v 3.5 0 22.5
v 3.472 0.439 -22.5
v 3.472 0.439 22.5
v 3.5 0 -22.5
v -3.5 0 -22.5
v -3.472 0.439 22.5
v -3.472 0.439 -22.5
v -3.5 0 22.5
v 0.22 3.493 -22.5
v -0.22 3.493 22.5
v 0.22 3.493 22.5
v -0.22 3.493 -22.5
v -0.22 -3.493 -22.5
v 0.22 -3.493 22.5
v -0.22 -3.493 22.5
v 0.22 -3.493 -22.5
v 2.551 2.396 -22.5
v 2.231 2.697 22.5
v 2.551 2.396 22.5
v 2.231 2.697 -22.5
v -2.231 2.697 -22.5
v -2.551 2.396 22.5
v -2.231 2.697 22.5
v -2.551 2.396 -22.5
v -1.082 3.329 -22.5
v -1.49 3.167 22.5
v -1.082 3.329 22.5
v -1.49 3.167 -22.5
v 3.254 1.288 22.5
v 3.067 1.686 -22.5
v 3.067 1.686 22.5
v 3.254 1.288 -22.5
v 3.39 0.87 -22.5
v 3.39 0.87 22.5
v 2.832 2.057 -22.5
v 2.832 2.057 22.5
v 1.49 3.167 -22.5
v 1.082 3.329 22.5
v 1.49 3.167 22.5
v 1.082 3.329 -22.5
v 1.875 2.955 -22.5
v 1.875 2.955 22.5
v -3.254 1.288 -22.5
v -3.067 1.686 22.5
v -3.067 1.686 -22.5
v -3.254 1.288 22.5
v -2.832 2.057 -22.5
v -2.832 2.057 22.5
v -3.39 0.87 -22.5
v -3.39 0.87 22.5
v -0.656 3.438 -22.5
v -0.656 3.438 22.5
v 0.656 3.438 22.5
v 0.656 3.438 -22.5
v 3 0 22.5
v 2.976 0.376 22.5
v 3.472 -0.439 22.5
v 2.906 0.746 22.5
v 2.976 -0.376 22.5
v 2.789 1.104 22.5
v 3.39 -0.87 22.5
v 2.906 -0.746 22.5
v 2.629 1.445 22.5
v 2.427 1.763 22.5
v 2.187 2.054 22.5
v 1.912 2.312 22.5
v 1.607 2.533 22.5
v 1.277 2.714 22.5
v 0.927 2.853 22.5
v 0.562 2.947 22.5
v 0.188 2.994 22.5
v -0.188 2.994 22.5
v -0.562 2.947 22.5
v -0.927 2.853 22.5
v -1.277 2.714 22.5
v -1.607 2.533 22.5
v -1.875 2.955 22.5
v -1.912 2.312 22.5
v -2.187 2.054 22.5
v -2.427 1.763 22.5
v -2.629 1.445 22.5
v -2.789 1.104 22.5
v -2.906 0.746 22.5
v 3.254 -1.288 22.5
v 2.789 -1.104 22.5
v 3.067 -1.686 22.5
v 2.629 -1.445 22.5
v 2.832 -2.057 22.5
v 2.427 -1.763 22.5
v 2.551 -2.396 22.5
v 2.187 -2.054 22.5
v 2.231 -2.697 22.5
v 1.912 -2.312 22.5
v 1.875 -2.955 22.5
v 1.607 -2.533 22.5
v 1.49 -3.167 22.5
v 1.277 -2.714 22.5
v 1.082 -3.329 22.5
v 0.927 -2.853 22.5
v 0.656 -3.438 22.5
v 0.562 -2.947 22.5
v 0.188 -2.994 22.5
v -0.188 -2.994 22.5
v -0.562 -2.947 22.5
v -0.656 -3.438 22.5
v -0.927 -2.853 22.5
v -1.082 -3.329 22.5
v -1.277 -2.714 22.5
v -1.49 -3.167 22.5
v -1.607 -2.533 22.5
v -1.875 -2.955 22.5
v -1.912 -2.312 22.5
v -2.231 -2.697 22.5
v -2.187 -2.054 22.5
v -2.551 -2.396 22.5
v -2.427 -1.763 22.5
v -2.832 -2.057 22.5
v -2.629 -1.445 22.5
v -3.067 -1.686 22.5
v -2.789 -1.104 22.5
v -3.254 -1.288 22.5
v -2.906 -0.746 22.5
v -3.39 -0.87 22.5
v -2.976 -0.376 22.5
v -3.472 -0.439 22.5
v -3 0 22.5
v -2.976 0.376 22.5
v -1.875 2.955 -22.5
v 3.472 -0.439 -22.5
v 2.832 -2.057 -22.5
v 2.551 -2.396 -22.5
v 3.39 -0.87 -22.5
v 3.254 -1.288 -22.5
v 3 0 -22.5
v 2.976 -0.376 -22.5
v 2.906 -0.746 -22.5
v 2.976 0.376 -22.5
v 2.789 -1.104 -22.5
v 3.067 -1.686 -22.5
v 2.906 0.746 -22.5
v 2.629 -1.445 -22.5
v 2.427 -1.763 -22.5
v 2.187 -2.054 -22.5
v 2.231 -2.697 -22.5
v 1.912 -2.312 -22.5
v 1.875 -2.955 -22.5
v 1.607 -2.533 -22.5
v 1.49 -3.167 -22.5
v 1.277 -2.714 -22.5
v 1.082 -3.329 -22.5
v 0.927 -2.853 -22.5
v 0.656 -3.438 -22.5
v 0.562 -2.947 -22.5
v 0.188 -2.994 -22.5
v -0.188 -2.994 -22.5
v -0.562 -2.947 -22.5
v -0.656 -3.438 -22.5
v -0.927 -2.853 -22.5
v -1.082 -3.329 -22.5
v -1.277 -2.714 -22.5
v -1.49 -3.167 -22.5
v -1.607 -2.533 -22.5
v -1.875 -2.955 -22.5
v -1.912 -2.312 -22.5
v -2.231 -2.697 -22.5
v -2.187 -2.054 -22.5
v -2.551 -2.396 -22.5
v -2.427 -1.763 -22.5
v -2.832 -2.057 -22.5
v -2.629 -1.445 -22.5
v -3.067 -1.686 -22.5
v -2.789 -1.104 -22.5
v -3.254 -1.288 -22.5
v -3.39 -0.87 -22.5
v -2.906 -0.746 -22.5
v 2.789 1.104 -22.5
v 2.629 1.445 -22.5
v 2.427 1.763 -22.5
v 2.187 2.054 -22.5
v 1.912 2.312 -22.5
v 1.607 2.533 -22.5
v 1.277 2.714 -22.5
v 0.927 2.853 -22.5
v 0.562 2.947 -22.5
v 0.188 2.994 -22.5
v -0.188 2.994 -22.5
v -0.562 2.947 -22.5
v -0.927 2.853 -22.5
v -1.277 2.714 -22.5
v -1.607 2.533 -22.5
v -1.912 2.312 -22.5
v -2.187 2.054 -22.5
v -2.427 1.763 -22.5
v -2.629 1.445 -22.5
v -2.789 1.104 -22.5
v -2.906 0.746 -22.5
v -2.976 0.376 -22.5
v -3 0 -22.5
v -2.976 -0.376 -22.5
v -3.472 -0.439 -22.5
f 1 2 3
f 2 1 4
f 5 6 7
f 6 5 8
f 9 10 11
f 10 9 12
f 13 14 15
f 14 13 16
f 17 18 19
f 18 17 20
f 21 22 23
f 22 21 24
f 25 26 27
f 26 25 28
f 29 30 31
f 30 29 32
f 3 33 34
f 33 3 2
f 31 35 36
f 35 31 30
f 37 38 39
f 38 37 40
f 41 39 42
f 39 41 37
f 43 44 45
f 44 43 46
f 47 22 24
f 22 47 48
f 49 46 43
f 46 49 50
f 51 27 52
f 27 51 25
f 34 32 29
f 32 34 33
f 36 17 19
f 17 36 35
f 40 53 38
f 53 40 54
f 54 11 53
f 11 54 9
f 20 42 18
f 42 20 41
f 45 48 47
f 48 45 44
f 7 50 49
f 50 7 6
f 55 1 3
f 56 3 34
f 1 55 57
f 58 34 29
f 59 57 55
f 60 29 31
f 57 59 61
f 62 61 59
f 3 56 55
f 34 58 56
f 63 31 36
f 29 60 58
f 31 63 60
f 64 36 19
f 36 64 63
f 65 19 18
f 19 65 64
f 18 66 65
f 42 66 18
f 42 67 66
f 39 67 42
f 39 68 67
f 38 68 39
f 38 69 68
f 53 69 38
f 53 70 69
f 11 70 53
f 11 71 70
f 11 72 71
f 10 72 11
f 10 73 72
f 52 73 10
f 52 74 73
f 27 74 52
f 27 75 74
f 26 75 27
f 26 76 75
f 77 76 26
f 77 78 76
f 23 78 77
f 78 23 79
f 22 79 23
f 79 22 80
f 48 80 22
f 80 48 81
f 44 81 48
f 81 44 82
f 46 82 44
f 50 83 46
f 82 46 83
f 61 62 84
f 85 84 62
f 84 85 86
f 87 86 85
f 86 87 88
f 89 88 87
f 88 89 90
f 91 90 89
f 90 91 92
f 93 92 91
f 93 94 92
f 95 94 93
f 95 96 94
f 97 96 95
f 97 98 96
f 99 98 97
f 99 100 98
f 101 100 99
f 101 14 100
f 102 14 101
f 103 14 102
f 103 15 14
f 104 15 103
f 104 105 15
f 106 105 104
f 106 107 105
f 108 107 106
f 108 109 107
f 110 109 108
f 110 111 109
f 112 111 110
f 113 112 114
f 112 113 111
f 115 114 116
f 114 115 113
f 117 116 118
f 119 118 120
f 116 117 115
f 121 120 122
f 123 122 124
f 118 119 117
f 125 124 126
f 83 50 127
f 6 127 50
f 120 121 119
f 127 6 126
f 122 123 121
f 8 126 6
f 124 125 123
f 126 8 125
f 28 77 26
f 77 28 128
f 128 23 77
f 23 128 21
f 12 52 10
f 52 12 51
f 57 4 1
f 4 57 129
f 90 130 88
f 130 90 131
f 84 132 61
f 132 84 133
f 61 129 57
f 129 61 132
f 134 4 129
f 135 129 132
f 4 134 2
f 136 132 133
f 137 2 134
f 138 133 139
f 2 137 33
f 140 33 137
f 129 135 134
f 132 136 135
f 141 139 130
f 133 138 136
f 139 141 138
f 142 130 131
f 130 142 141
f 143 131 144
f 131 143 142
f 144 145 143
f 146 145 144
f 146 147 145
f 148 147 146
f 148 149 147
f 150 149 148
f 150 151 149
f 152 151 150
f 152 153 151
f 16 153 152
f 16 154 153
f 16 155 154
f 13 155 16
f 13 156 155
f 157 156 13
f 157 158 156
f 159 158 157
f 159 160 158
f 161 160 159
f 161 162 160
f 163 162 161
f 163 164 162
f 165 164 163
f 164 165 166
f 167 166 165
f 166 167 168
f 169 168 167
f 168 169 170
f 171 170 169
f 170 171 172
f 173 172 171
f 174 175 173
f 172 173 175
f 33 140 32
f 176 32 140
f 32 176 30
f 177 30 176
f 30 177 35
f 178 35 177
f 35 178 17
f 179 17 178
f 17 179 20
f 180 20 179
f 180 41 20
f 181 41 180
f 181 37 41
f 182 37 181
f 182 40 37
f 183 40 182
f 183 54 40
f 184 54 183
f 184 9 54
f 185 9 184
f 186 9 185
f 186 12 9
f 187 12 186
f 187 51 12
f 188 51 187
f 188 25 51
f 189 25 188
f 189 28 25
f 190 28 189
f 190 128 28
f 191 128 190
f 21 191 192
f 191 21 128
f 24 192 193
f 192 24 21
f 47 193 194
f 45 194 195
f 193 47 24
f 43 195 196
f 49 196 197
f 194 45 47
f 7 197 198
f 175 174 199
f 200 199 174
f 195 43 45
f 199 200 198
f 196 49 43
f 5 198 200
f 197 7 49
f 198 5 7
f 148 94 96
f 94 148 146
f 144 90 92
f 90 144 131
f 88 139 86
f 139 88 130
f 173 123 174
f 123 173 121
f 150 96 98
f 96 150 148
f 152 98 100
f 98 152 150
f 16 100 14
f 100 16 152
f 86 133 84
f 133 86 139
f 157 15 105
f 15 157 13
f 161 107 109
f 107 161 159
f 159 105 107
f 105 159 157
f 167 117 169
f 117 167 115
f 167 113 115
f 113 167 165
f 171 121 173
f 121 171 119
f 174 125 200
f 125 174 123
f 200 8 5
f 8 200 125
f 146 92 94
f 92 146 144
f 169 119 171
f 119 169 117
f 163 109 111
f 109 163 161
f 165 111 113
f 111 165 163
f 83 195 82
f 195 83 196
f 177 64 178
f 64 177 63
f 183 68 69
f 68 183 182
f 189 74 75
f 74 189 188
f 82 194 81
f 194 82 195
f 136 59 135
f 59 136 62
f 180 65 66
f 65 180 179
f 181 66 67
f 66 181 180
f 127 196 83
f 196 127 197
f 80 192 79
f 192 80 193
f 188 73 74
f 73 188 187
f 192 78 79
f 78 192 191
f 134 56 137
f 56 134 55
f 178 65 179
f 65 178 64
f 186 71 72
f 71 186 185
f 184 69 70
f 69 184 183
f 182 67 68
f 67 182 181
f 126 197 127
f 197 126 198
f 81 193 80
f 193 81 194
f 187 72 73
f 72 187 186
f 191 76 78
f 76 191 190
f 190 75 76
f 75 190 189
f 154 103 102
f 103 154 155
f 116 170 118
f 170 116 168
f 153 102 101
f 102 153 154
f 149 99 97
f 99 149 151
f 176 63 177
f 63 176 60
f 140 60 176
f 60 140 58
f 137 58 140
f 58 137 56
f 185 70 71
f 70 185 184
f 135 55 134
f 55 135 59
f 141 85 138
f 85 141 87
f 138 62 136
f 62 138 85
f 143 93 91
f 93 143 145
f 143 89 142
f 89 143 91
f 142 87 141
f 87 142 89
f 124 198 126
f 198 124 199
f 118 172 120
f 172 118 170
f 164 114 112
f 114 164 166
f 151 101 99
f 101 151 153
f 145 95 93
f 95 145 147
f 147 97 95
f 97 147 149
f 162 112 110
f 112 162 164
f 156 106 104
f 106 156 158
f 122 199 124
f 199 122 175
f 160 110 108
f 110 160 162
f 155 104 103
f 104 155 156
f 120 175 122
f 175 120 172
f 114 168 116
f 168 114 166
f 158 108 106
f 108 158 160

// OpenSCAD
$fn = 50;


difference() {
	union() {
		translate(v = [0, 0, -22.5000000000]) {
			cylinder(h = 45, r = 3.5000000000);
		}
	}
	union() {
		translate(v = [0, 0, -100.0000000000]) {
			cylinder(h = 200, r = 3);
		}
	}
}
